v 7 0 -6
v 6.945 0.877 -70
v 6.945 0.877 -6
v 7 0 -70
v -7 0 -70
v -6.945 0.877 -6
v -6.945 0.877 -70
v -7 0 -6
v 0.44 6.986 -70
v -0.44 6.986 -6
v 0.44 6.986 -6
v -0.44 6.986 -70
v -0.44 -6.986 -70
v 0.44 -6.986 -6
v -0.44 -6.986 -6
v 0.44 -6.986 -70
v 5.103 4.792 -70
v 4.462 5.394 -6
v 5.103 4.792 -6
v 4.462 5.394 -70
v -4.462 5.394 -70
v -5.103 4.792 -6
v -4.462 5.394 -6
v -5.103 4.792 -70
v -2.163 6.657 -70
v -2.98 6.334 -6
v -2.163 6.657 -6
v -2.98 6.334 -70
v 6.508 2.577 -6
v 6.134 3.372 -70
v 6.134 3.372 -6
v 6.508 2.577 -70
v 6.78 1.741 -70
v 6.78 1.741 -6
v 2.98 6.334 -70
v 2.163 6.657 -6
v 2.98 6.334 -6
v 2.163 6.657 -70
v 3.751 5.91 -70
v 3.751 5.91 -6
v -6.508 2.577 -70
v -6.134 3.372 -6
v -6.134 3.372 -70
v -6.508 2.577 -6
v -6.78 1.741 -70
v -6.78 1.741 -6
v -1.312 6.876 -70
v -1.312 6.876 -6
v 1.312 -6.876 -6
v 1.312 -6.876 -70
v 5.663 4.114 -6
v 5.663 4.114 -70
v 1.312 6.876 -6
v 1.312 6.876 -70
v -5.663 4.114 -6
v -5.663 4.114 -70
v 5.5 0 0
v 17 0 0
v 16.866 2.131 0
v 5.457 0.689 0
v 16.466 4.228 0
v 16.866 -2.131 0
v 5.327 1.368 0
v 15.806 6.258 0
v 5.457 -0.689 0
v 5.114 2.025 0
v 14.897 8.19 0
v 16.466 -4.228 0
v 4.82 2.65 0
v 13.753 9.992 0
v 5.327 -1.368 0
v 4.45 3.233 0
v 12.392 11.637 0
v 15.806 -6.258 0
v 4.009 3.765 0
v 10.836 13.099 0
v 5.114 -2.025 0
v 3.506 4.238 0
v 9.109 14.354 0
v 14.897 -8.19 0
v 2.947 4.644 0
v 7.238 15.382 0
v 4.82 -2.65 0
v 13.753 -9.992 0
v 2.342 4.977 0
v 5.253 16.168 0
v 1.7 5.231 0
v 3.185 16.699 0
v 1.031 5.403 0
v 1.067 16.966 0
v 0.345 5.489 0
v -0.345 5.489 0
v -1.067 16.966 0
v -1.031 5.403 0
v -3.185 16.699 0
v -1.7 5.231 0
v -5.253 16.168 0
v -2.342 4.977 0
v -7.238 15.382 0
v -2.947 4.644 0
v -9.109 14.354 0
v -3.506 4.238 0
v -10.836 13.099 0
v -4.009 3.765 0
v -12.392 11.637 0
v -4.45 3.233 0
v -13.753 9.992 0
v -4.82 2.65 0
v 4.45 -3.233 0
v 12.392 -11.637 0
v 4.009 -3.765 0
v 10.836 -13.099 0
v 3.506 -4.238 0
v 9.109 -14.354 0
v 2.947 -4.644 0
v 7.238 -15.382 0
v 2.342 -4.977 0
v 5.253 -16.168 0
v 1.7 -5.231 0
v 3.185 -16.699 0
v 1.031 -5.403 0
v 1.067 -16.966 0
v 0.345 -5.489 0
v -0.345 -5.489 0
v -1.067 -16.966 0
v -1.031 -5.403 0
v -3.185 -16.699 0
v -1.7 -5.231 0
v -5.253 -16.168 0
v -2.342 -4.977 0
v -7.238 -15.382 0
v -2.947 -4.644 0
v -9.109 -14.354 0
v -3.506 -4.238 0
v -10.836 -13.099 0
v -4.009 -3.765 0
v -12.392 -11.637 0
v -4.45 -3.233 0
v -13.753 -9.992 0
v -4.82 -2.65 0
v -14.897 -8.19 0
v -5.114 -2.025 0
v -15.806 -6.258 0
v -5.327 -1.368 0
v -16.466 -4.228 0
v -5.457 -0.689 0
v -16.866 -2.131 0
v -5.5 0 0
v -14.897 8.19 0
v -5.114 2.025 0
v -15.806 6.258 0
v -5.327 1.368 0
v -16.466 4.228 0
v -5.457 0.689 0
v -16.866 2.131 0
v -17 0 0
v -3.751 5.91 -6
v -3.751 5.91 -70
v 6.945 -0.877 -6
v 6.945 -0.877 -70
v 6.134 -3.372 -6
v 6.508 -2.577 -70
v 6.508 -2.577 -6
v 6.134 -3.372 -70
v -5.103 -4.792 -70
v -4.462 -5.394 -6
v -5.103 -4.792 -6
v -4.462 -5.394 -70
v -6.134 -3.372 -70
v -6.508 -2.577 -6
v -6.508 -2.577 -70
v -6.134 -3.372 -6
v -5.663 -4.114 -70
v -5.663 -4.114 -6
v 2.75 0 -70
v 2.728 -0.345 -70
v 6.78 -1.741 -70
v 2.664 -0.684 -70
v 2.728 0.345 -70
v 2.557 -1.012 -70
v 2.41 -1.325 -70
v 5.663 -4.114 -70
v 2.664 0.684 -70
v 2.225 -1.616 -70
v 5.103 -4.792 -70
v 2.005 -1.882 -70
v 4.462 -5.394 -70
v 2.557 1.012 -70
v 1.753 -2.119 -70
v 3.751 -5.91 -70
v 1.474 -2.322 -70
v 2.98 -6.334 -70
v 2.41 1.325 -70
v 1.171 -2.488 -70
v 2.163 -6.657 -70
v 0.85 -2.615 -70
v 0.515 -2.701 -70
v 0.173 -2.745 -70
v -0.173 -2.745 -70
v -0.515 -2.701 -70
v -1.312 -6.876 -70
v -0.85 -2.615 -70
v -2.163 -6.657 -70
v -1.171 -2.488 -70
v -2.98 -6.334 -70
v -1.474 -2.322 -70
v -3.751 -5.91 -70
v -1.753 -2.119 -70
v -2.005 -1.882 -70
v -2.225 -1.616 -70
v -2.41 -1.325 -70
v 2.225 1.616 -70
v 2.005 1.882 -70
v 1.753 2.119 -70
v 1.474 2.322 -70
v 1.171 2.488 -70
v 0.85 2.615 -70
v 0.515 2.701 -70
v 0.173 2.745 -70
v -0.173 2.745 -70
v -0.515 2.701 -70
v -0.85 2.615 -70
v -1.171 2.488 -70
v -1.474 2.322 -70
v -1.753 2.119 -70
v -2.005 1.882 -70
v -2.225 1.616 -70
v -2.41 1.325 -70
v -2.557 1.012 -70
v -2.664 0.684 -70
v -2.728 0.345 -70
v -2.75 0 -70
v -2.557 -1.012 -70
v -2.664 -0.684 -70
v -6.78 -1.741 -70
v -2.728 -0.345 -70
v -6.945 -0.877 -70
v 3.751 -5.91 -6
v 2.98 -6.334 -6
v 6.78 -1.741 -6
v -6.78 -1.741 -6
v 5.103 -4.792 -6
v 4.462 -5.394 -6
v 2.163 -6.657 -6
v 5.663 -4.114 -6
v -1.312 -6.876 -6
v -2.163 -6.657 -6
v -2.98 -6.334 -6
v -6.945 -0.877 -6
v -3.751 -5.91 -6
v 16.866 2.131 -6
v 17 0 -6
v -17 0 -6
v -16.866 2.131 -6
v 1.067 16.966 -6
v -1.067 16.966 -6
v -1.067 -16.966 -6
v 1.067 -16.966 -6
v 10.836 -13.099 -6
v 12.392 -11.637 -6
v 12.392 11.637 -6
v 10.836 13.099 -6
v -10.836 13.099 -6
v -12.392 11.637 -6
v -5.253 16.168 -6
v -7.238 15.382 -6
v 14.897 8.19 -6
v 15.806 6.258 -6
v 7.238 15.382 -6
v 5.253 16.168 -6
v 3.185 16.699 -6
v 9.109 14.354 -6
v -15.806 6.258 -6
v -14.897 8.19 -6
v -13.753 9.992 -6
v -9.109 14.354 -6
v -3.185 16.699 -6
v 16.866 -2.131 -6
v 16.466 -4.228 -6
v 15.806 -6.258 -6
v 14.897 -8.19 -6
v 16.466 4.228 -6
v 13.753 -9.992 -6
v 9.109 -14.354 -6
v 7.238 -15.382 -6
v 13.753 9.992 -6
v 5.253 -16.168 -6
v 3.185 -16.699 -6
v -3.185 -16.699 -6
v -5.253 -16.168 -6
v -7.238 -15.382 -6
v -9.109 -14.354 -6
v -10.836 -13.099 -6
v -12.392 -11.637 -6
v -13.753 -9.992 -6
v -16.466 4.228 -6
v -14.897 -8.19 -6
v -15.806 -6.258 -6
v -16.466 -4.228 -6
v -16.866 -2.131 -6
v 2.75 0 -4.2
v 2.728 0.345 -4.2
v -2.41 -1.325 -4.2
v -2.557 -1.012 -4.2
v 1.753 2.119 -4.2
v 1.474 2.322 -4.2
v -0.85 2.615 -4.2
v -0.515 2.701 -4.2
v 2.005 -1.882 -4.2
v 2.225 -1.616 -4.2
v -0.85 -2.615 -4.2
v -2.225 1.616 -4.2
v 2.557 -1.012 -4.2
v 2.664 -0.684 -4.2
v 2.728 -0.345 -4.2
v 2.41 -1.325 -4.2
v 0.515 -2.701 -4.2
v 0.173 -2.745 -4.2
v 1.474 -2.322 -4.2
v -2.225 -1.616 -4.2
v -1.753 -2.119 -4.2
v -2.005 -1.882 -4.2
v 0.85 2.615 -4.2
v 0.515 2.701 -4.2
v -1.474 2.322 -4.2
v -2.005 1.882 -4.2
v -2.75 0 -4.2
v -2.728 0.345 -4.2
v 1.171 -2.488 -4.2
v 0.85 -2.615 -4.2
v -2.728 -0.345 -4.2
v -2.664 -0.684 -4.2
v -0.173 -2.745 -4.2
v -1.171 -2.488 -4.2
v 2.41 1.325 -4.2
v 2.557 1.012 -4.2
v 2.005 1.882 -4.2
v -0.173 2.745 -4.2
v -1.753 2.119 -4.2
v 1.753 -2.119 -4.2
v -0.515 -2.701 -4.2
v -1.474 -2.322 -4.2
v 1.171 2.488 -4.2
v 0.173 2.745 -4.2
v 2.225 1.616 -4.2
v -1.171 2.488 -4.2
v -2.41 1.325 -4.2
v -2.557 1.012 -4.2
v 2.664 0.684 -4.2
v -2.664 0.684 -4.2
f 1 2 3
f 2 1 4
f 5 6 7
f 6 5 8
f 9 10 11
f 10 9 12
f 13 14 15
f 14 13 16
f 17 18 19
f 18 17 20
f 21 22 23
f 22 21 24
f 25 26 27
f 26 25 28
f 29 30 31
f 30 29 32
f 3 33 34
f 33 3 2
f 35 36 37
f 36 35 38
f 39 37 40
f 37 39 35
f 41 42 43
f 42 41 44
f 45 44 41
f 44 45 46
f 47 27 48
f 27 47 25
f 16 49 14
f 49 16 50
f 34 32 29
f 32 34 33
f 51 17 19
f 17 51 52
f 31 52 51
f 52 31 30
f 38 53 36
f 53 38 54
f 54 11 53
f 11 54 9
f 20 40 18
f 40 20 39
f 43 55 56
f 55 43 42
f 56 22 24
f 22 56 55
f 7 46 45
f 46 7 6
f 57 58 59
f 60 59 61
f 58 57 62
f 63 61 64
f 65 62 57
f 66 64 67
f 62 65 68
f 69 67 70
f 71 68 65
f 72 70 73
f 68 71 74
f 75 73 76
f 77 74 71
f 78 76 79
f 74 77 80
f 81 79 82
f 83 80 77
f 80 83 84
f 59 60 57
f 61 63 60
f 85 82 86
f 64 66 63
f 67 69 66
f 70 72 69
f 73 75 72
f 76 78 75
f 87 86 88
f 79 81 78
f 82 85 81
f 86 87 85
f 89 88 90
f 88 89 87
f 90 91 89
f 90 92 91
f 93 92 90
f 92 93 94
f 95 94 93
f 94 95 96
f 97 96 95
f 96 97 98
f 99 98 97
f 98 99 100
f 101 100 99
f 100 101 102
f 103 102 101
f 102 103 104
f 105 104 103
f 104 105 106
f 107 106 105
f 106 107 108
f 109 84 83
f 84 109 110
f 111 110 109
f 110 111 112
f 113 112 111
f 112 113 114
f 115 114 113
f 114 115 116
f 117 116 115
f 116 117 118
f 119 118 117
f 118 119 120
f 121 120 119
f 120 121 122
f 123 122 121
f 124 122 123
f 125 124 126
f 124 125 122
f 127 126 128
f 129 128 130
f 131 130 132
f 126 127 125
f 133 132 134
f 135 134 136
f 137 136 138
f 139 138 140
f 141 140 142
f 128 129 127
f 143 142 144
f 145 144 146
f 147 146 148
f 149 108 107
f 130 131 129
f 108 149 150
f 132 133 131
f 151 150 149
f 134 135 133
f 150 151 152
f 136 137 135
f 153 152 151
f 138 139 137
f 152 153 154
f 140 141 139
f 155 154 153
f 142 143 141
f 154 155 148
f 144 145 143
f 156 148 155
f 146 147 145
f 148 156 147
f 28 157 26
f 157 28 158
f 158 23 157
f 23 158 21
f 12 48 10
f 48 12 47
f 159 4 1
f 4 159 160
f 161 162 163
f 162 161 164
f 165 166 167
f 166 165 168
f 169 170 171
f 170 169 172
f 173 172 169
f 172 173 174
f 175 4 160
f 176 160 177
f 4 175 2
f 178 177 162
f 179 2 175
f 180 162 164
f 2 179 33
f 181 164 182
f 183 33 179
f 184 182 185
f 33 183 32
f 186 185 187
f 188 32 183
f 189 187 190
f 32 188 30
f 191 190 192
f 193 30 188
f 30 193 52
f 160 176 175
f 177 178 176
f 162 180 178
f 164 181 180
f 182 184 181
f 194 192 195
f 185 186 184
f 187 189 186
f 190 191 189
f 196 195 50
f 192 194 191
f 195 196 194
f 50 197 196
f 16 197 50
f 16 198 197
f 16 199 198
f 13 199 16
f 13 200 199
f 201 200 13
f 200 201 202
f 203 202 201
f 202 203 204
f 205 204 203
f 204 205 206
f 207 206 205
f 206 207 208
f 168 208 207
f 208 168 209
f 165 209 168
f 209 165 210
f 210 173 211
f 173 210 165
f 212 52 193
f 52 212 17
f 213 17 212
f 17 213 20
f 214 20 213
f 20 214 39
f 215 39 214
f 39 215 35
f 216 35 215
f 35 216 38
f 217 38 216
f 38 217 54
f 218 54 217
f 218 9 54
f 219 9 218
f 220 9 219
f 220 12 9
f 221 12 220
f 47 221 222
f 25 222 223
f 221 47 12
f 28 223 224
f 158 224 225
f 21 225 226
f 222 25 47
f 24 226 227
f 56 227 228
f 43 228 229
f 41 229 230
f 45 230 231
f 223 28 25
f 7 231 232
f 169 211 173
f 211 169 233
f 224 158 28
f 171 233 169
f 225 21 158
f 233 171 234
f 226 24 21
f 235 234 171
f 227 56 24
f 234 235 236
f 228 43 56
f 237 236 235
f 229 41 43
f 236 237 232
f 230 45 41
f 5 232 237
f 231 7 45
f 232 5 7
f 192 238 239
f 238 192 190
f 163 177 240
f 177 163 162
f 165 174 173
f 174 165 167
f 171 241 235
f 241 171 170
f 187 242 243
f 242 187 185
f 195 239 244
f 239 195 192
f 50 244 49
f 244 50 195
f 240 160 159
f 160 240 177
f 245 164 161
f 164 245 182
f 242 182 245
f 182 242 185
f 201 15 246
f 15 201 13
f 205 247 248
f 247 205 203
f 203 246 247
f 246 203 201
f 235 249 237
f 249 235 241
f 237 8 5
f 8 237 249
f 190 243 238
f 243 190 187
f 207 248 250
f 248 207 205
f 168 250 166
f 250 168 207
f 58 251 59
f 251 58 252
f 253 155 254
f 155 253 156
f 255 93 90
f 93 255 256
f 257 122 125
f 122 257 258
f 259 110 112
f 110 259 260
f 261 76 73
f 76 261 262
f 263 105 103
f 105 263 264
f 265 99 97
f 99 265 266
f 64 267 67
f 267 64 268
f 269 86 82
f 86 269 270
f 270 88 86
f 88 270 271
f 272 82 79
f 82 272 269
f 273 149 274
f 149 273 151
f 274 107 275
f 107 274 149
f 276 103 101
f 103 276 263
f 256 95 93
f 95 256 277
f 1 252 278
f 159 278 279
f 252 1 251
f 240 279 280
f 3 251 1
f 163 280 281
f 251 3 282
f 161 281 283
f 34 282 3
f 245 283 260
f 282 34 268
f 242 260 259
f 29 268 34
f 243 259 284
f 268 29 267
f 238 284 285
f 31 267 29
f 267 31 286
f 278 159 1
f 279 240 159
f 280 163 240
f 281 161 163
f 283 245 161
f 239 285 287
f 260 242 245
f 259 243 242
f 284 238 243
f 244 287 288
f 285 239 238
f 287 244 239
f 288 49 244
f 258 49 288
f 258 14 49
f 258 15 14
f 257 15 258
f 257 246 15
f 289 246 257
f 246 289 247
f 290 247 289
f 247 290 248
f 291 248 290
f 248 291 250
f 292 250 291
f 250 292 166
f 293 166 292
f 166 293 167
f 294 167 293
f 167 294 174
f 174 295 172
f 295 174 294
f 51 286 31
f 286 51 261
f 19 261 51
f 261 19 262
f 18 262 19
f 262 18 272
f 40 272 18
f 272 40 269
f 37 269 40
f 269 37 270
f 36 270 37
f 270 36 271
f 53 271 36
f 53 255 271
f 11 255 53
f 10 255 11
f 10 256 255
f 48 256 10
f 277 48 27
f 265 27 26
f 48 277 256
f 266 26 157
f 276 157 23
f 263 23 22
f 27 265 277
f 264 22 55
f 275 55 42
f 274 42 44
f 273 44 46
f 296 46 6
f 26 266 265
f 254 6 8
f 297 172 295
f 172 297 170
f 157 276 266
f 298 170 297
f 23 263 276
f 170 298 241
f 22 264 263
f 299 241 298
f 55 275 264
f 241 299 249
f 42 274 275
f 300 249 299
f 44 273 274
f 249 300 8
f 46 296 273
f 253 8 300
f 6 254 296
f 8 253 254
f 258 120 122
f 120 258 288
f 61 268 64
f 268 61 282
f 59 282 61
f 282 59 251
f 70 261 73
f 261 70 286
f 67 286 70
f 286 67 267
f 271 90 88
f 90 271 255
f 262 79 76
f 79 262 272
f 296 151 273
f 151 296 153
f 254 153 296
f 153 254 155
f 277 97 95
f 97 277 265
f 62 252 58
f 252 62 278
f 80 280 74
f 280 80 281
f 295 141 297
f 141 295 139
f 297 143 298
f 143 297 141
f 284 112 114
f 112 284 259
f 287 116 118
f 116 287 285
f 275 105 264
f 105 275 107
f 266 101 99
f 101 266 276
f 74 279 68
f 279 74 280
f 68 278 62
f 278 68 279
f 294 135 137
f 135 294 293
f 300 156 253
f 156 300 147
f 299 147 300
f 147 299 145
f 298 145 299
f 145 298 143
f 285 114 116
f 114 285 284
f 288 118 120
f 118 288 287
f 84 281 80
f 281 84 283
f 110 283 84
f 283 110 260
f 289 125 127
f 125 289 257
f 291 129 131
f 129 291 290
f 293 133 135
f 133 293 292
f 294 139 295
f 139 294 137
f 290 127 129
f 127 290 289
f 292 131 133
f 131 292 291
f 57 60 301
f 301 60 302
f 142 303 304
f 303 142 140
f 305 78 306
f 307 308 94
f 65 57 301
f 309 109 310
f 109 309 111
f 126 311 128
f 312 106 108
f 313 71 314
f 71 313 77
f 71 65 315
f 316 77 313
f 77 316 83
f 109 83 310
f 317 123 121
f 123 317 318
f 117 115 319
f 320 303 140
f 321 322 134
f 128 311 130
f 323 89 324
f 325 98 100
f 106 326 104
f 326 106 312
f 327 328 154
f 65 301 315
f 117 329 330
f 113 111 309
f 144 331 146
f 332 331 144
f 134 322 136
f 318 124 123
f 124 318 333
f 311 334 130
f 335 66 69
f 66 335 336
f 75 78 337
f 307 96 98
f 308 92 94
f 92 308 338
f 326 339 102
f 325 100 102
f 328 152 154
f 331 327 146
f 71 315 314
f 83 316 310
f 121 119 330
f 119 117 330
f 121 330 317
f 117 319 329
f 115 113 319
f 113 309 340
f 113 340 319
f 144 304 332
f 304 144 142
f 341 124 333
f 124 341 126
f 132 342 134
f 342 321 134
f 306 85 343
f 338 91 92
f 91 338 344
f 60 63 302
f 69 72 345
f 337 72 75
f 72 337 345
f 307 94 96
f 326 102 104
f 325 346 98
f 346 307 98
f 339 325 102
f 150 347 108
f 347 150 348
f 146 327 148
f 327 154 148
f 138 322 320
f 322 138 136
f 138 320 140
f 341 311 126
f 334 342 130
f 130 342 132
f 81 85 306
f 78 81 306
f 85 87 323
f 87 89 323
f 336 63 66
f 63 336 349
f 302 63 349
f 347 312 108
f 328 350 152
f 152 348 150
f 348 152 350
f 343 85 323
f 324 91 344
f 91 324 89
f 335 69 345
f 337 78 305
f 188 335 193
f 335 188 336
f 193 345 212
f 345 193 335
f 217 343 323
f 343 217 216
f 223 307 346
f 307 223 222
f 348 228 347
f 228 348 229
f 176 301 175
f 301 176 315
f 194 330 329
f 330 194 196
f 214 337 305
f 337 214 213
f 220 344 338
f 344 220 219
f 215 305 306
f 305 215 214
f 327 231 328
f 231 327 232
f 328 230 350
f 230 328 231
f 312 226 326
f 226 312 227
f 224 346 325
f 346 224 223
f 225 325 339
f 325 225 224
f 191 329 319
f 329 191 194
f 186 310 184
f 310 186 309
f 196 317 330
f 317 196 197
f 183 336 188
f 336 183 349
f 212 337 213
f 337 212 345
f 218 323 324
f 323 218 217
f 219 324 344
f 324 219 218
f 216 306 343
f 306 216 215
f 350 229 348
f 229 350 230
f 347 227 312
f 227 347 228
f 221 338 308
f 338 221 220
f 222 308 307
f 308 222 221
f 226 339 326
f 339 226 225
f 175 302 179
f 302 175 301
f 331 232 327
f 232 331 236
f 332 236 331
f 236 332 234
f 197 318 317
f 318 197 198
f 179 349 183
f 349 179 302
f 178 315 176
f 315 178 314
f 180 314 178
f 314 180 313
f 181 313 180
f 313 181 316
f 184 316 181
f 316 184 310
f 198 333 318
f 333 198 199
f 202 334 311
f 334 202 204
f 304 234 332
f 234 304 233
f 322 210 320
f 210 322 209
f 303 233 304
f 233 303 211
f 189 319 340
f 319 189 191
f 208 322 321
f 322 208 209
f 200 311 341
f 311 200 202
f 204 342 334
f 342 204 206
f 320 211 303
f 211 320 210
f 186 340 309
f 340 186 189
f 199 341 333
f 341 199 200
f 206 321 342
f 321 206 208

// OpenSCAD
$fn = 50;


difference() {
	union() {
		translate(v = [0, 0, -70.0000000000]) {
			cylinder(h = 70, r = 7.0000000000);
		}
		translate(v = [0, 0, -6.0000000000]) {
			cylinder(h = 6, r = 17.0000000000);
		}
	}
	union() {
		translate(v = [0, 0, 0]) {
			rotate(a = [0, 0, 0]) {
				difference() {
					union() {
						#translate(v = [0, 0, -70.0000000000]) {
							cylinder(h = 70, r = 2.2500000000);
						}
						#translate(v = [0, 0, -4.2000000000]) {
							cylinder(h = 4.2000000000, r = 7.0000000000, r1 = 2.7500000000, r2 = 5.5000000000);
						}
						#translate(v = [0, 0, -70.0000000000]) {
							cylinder(h = 70, r = 2.7500000000);
						}
						#translate(v = [0, 0, -70.0000000000]) {
							cylinder(h = 70, r = 2.2500000000);
						}
					}
					union();
				}
			}
		}
	}
}
